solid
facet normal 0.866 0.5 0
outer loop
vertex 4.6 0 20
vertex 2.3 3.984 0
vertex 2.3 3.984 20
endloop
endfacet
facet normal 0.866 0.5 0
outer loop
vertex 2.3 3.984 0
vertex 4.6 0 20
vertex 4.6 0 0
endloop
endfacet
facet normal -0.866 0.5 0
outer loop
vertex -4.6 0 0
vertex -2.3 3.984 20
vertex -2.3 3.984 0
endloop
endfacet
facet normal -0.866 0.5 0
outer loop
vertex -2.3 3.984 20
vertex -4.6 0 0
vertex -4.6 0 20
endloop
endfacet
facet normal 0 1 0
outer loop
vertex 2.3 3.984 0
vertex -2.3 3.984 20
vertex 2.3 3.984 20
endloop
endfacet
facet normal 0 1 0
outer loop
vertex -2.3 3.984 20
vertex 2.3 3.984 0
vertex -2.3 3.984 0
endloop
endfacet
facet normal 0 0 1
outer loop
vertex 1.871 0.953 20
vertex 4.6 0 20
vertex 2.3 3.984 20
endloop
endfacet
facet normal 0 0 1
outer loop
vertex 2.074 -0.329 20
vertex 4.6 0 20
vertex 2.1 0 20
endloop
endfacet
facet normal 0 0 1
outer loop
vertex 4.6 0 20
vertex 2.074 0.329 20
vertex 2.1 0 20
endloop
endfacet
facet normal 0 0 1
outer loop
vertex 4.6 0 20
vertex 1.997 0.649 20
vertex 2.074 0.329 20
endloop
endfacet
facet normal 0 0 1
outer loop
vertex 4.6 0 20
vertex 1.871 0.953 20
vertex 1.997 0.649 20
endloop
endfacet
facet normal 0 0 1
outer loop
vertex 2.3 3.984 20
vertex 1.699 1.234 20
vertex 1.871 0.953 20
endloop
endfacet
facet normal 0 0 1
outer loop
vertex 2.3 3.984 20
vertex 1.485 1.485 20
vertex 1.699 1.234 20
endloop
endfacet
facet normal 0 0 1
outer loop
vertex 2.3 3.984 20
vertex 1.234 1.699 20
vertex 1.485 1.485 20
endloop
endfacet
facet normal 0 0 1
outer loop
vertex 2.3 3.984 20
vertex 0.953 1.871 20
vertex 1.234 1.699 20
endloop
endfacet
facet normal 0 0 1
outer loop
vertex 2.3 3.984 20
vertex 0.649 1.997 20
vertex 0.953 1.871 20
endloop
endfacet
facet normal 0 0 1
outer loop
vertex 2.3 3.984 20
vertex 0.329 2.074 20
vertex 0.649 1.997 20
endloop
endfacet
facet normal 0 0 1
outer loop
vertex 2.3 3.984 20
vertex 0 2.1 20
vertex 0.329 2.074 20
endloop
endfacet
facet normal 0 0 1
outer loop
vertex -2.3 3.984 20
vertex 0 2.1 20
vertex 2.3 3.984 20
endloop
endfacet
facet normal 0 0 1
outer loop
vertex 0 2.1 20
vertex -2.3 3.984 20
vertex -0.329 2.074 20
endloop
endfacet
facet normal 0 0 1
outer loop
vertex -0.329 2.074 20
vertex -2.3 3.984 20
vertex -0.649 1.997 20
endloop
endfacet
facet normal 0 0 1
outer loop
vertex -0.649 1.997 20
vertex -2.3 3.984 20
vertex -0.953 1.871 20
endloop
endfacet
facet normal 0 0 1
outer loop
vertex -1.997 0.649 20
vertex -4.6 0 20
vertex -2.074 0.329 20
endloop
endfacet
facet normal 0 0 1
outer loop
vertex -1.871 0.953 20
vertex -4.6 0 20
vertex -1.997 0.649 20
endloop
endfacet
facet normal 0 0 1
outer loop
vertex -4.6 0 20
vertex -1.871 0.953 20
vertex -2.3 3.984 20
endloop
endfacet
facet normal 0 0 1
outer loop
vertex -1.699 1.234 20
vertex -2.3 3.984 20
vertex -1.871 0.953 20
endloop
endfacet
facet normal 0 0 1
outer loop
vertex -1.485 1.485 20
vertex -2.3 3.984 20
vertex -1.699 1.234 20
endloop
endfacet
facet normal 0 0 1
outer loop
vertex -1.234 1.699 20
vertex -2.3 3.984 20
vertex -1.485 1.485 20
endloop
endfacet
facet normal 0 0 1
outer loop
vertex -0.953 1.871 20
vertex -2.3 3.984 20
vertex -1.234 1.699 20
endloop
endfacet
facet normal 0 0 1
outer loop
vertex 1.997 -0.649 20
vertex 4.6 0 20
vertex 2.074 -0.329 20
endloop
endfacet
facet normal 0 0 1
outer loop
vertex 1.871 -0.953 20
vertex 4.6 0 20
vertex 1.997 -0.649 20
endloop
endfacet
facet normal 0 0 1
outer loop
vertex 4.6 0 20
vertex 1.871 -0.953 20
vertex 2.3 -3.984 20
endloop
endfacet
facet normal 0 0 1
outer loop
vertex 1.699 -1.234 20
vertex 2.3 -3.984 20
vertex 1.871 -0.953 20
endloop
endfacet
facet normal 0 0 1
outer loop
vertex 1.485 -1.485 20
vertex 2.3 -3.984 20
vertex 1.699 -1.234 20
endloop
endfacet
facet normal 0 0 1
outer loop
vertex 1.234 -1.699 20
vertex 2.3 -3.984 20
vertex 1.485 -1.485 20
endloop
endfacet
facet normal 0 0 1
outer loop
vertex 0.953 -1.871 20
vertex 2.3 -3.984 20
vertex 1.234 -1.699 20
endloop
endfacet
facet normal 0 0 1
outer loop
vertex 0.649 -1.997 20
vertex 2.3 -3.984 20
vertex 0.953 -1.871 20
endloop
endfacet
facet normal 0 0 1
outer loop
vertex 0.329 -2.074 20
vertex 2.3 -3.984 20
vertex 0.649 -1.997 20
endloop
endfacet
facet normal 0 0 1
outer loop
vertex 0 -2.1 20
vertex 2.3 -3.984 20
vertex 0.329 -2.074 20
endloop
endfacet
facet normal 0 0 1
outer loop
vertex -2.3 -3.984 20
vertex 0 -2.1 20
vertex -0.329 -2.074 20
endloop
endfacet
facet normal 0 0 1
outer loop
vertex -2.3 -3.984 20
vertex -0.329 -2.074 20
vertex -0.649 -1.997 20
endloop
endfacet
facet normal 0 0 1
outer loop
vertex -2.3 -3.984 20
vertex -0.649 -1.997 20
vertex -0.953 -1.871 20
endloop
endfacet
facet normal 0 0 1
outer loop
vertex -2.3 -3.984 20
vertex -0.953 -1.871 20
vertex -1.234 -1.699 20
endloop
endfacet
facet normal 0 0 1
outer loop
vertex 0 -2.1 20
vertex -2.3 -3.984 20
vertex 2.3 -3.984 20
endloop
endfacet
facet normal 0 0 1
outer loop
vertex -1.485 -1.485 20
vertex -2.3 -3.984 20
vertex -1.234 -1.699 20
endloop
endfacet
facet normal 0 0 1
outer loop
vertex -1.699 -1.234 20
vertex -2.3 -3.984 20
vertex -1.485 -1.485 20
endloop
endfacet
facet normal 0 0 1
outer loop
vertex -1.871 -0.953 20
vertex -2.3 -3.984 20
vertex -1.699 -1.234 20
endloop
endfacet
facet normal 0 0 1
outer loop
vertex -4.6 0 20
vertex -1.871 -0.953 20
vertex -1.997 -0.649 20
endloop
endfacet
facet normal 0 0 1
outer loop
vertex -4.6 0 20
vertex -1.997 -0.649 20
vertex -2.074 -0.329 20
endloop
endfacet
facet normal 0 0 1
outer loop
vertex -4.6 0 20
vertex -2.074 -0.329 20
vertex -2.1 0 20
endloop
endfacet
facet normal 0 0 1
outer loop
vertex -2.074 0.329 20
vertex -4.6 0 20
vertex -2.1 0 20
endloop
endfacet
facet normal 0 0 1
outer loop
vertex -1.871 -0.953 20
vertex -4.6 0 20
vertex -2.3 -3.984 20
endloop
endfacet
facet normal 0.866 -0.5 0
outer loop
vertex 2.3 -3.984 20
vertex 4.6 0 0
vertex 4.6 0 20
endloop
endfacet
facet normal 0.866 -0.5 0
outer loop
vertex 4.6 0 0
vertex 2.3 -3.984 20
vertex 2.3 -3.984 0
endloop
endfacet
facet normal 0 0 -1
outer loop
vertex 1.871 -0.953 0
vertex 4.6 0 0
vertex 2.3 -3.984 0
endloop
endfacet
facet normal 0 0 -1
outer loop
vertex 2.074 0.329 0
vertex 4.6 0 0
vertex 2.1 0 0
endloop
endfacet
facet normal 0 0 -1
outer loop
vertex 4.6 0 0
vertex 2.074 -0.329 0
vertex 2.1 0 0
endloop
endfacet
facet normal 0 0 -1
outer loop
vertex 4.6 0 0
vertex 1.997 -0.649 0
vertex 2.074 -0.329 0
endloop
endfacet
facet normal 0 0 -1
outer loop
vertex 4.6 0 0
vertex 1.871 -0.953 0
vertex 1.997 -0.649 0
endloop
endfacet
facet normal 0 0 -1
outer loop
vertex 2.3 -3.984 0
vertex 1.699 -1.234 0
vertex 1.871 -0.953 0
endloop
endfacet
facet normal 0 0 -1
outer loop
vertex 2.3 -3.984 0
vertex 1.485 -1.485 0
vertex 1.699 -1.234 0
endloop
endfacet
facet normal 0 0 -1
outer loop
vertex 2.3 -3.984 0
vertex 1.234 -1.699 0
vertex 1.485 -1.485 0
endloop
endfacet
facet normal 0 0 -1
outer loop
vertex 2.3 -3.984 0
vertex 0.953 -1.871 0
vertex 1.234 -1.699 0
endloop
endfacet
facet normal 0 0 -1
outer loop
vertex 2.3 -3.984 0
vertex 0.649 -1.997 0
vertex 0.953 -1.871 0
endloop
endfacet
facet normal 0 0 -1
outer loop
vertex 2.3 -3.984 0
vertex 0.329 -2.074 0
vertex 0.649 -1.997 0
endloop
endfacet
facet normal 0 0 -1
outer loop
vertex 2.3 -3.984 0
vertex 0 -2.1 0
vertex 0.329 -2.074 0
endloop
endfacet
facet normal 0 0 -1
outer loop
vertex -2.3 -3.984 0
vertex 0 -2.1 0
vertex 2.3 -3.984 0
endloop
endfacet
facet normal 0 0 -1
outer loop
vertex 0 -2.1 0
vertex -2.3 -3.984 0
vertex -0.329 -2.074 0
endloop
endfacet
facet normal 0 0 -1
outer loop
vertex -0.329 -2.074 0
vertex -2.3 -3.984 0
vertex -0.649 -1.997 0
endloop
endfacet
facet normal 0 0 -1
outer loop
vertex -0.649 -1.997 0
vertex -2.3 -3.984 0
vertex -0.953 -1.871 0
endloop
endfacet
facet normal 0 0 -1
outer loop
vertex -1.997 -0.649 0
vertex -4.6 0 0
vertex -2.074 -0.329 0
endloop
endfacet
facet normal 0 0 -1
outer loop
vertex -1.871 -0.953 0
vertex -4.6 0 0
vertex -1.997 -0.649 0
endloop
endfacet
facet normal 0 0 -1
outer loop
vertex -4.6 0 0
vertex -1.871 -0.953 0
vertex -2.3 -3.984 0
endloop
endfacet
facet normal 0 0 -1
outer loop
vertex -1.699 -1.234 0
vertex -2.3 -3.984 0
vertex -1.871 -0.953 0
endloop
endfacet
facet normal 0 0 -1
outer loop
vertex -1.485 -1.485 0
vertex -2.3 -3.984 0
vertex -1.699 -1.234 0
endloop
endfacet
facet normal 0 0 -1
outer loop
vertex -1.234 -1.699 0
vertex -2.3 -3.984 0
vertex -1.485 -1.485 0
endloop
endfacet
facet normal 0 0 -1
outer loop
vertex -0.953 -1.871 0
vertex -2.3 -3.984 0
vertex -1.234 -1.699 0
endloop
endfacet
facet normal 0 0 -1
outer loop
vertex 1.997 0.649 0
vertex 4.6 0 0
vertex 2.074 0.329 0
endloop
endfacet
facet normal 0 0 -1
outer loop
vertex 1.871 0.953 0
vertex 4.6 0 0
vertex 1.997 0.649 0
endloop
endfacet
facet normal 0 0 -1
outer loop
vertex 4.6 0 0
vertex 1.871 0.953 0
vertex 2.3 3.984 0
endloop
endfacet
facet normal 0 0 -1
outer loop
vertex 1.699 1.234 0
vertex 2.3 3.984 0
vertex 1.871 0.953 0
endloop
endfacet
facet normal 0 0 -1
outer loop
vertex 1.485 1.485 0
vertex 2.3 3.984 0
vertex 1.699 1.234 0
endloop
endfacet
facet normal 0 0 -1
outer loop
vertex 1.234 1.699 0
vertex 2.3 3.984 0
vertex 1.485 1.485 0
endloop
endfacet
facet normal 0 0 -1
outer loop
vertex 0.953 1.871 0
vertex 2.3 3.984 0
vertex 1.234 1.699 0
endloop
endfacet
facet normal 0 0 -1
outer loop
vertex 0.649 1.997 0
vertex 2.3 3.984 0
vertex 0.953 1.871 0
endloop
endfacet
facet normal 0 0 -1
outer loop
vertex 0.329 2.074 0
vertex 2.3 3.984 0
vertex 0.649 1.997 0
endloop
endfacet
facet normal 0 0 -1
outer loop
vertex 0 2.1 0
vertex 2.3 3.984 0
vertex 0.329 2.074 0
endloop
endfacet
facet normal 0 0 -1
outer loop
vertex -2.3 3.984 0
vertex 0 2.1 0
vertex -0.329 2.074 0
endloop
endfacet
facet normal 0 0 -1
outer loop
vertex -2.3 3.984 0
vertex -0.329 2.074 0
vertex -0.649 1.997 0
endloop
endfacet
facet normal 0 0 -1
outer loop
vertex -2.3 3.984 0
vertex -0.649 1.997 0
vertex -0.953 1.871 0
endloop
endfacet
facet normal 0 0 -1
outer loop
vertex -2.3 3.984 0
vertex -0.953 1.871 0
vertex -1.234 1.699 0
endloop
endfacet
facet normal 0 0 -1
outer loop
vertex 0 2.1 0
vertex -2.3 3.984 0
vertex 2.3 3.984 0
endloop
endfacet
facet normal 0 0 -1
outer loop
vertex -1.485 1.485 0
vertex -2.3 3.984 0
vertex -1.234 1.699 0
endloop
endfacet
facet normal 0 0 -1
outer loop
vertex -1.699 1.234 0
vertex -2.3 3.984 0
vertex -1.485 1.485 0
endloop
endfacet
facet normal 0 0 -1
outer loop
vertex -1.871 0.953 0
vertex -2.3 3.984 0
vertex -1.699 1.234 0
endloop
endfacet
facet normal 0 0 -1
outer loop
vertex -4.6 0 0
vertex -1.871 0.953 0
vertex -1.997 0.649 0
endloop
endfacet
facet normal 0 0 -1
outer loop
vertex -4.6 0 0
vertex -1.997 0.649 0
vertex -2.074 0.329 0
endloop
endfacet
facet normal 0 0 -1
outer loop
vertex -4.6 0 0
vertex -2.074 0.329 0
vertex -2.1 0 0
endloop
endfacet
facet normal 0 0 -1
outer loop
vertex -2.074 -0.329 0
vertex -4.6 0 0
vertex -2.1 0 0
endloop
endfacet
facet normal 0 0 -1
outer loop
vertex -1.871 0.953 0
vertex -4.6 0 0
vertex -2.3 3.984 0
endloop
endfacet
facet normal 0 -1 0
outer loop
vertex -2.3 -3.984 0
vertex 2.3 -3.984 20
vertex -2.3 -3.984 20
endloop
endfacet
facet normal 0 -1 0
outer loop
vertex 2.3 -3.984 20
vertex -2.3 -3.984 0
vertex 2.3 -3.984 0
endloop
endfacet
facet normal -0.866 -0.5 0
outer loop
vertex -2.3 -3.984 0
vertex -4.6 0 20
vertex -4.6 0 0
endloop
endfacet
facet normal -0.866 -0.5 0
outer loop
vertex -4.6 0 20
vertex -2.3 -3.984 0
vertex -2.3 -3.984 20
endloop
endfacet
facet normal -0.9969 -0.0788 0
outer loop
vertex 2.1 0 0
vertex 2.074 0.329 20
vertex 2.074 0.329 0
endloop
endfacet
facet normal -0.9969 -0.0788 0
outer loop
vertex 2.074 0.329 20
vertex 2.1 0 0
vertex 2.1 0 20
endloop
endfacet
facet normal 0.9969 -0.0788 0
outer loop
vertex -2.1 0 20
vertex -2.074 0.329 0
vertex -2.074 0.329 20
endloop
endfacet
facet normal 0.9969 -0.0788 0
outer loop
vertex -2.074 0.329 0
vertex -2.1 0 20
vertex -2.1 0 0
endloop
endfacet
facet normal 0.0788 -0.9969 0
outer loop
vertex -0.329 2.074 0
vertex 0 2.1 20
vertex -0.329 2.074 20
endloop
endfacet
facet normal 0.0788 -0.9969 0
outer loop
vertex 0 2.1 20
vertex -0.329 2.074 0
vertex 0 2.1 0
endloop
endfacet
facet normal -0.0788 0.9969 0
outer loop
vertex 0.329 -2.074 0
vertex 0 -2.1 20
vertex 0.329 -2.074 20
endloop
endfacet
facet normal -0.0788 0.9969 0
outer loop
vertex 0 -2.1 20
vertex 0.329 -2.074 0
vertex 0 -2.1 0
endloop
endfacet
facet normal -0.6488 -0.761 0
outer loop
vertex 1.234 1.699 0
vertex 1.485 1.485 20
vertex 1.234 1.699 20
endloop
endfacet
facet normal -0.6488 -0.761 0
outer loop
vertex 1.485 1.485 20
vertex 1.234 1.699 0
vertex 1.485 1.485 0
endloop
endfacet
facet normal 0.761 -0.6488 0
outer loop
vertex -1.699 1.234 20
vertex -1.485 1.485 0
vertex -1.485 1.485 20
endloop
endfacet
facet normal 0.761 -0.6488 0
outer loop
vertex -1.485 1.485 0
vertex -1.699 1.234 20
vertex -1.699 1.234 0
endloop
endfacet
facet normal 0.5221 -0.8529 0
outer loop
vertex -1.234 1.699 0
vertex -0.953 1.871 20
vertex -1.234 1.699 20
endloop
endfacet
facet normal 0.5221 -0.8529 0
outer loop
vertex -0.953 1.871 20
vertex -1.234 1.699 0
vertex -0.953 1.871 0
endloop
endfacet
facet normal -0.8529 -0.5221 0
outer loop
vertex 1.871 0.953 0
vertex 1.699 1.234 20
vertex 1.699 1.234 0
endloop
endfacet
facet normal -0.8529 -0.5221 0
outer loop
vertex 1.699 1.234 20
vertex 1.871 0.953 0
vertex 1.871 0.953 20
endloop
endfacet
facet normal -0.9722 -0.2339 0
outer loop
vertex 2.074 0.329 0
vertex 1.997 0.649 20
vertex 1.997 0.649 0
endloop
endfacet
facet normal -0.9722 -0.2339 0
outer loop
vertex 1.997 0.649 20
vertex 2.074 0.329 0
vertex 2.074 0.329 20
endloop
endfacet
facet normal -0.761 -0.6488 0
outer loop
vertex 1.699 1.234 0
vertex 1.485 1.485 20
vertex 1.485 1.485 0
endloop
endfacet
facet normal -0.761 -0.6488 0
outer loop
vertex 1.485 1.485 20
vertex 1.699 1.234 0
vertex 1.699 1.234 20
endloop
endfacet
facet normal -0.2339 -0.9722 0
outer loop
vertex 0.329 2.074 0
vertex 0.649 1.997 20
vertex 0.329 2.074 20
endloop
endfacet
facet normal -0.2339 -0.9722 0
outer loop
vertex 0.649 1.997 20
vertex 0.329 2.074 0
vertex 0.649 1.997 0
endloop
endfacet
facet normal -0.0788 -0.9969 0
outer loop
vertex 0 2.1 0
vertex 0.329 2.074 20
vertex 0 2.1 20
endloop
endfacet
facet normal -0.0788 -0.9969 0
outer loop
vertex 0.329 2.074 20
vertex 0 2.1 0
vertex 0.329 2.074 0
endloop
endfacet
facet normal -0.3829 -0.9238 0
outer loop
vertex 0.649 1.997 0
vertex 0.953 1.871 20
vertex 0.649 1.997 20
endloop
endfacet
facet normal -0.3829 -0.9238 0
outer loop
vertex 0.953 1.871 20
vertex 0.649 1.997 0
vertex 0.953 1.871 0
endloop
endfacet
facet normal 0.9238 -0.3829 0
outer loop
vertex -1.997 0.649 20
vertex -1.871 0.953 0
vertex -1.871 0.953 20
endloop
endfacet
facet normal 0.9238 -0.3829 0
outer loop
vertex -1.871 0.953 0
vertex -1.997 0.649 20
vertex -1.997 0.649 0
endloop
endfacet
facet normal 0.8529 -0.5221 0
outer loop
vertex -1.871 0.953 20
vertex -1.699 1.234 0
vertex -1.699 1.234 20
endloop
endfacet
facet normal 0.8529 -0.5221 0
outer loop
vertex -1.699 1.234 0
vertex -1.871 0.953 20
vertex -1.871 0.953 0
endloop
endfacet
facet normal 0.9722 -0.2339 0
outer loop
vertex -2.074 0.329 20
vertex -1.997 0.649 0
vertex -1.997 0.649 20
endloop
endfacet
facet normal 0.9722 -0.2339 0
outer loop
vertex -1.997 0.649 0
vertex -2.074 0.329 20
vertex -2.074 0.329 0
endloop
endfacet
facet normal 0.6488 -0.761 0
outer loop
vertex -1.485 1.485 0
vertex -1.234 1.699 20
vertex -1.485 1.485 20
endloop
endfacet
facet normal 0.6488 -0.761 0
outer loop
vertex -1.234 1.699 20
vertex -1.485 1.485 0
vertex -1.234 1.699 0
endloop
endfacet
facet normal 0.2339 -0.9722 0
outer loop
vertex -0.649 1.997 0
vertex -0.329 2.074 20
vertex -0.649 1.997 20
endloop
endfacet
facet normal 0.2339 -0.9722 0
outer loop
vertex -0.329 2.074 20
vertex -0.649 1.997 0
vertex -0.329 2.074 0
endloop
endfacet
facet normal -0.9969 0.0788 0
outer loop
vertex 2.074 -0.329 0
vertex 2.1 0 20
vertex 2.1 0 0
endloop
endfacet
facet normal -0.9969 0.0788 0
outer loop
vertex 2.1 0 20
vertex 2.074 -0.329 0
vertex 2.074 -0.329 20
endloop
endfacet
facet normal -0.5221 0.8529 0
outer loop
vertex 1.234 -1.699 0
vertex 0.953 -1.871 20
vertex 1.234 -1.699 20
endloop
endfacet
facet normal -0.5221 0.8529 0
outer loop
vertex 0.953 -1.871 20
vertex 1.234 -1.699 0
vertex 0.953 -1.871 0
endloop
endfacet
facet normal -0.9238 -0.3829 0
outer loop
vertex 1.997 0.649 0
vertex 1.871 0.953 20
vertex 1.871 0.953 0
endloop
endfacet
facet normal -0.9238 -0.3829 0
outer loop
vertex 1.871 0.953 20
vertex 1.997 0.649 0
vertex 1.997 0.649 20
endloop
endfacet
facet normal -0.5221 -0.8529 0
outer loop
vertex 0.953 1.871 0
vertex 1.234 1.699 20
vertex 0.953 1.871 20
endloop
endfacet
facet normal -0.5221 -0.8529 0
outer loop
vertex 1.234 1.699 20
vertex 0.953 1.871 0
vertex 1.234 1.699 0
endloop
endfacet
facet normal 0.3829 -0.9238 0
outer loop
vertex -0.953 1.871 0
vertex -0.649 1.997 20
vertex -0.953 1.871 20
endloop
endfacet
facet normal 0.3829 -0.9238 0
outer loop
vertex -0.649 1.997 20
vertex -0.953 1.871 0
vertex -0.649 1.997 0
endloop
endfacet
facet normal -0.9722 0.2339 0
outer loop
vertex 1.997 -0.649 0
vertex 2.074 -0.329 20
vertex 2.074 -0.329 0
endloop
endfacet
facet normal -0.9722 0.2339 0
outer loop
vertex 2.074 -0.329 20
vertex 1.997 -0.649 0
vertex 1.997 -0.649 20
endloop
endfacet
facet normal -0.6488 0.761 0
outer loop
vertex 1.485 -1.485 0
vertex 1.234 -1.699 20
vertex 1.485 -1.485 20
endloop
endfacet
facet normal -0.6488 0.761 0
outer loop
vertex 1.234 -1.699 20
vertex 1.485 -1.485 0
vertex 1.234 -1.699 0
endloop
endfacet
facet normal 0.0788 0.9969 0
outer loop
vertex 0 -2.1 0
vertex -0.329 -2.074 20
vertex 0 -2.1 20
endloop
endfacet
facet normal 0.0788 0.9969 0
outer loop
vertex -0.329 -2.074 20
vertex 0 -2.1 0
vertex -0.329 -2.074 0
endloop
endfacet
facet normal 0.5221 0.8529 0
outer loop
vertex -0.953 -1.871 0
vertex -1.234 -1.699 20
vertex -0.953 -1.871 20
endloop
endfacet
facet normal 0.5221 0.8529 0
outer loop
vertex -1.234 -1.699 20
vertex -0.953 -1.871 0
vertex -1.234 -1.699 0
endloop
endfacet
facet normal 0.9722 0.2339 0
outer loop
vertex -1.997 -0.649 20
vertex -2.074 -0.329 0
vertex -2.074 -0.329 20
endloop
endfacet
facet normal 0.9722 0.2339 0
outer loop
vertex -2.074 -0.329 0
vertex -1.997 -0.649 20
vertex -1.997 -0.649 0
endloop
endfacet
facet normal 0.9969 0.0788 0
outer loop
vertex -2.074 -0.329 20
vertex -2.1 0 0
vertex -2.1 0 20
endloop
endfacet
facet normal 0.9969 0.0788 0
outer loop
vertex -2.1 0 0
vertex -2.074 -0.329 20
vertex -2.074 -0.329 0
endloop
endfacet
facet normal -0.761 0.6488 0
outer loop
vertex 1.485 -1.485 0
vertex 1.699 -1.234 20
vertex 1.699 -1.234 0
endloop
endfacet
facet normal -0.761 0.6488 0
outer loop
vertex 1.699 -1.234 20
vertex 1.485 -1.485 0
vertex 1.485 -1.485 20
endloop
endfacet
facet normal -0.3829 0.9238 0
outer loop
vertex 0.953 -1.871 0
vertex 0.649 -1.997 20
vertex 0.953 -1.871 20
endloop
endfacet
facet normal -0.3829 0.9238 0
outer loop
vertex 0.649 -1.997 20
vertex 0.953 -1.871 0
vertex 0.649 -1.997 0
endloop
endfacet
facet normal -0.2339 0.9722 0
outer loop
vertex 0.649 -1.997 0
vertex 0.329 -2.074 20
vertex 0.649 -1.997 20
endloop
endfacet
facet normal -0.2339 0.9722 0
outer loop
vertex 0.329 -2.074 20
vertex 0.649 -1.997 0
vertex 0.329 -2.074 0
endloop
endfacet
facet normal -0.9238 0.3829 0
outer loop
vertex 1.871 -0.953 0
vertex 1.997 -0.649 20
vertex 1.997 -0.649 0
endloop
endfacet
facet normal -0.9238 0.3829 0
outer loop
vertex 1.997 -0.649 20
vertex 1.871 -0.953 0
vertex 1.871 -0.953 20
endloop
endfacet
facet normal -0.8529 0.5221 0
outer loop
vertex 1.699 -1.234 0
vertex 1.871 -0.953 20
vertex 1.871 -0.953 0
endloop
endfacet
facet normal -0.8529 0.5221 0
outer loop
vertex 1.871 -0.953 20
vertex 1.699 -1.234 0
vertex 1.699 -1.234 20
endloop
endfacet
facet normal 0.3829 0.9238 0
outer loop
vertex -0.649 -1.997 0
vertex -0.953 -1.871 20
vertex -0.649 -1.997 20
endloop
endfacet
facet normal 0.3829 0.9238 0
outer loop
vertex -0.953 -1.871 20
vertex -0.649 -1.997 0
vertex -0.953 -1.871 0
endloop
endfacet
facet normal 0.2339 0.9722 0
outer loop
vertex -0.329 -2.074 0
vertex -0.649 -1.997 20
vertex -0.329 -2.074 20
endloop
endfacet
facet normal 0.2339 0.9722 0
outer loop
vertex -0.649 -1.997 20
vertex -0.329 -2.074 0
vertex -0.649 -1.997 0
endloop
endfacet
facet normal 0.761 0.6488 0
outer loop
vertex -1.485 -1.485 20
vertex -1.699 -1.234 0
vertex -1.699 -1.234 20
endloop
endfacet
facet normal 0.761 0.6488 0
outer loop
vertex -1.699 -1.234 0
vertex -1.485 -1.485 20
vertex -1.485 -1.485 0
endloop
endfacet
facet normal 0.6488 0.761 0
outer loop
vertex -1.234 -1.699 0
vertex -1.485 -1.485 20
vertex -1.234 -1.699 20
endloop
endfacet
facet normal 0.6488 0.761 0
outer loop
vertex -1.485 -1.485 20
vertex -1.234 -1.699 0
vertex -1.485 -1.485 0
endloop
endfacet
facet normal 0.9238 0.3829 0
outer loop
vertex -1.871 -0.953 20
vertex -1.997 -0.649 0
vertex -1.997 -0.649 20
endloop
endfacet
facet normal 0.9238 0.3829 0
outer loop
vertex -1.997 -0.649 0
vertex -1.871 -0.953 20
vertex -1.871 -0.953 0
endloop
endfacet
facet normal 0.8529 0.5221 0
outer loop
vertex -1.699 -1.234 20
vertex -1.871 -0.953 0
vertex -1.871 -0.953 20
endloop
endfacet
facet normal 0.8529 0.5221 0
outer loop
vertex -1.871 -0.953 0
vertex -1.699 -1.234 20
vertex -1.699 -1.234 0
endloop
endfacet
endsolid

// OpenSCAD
//Altura
h=20;
//Dimensiones interior
di=4.2;
ti=40;
//Dimensiones exterior
de=9.2;
te=6;


difference(){
cylinder(r=de/2,h,$fn=te);
cylinder(r=di/2,h+1.2,$fn=ti);}
